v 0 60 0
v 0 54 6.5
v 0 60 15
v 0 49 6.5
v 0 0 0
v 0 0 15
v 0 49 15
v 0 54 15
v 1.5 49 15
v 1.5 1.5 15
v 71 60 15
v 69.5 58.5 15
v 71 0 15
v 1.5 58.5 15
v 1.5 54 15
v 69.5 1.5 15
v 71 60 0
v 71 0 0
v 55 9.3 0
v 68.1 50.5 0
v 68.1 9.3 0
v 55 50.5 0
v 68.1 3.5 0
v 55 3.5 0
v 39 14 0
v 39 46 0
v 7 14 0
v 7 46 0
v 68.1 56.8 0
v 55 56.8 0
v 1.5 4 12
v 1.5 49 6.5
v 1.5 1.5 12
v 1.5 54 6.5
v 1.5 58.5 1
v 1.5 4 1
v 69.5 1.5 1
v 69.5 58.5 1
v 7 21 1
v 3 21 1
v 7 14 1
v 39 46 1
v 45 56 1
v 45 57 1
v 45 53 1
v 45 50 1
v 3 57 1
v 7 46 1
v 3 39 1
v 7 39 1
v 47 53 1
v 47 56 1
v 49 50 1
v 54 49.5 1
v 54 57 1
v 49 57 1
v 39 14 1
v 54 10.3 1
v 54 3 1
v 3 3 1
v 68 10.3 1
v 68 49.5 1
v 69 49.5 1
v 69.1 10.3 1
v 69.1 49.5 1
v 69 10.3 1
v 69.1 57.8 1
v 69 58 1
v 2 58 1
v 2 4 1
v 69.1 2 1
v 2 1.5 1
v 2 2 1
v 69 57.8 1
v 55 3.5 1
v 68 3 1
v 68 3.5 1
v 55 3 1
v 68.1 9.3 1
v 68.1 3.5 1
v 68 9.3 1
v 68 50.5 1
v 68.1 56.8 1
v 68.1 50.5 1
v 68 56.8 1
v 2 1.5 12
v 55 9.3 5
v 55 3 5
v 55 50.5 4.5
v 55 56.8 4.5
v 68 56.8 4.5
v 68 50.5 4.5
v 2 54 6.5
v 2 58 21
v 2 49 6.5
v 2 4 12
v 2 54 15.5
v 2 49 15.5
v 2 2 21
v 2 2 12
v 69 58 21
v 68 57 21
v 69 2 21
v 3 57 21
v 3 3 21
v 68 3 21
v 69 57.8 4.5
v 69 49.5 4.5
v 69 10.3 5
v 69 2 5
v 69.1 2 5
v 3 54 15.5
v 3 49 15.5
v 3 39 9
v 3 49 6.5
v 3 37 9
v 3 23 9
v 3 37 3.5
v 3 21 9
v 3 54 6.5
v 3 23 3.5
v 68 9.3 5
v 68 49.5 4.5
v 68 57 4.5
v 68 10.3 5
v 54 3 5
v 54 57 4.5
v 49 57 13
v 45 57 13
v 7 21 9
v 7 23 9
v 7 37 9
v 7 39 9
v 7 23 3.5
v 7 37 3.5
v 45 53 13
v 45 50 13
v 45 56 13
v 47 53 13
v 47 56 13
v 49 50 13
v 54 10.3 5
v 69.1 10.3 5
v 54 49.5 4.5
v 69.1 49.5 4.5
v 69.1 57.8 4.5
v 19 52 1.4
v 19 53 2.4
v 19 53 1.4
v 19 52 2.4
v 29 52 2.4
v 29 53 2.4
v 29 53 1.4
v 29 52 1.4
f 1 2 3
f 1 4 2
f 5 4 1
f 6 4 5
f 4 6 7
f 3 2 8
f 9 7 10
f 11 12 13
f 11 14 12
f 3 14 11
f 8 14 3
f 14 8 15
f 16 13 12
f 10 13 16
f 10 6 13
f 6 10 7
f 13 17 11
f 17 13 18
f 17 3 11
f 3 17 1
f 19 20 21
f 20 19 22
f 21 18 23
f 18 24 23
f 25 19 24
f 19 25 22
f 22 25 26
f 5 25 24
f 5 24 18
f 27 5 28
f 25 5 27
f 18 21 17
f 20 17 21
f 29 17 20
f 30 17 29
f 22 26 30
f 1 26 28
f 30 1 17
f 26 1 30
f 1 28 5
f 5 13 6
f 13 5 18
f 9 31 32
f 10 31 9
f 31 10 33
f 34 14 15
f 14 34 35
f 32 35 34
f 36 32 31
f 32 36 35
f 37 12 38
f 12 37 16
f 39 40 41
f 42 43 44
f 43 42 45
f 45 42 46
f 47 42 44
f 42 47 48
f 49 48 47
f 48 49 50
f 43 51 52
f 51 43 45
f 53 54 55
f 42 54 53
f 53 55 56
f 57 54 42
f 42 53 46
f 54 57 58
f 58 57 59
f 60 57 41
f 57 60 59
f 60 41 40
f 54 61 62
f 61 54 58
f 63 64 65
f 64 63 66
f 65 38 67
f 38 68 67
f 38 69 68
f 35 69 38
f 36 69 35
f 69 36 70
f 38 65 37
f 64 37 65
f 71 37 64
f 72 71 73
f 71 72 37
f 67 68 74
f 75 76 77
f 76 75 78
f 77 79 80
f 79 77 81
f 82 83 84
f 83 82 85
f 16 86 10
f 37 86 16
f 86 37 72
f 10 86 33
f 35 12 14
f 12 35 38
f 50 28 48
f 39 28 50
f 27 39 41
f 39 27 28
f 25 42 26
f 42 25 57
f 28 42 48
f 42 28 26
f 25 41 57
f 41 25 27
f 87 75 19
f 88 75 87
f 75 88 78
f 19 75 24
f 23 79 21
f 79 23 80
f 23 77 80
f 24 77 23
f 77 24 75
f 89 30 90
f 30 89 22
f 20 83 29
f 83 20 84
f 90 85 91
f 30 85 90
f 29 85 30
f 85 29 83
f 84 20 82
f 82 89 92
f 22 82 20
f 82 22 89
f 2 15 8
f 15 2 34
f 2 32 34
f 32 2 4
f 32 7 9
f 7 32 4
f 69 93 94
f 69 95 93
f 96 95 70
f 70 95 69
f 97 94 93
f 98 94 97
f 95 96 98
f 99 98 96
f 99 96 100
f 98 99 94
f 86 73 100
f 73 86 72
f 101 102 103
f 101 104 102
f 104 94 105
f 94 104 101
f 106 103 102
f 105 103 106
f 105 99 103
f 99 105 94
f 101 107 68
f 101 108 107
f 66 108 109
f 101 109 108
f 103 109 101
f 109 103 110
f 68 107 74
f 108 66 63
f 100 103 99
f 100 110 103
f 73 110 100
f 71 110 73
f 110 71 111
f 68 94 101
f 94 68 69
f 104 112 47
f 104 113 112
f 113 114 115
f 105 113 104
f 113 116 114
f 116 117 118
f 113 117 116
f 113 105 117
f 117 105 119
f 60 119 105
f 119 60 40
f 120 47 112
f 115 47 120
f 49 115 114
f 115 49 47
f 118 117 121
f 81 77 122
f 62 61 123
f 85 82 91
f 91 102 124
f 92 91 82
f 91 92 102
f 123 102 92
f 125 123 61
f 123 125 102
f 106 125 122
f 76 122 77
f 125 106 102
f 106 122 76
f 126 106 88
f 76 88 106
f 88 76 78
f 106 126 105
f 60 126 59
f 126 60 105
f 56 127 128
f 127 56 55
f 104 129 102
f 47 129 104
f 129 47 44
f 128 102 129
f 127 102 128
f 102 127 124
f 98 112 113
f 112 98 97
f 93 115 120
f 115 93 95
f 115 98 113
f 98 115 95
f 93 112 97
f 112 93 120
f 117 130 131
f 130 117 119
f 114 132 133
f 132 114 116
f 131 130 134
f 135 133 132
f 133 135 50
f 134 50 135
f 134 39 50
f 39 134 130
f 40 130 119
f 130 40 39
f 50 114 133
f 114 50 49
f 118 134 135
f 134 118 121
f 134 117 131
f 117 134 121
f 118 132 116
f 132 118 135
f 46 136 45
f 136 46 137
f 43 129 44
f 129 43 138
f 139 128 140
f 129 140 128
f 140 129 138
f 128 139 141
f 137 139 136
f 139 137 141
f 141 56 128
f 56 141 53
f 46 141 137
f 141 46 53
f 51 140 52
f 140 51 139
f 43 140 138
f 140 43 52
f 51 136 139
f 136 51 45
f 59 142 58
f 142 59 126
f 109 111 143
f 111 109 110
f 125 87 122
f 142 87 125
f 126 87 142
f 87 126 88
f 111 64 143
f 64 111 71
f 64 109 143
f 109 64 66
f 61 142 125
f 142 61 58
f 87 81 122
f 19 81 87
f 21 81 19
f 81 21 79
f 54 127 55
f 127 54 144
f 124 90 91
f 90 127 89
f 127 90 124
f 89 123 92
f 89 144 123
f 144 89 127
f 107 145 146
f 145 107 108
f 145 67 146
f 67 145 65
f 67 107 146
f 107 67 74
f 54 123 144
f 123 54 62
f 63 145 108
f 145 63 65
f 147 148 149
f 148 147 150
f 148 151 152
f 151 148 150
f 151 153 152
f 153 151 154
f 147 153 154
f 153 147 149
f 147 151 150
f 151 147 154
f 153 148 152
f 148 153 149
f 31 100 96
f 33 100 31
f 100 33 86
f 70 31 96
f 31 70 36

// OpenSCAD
/*
 * @copyright Copyright (C) 2016 Leiden Tech. All rights reserved.
 * @license http://www.gnu.org/licenses/gpl-3.0.txt GNU General Public License v3
 * 
 */
//naked switches boloblinky

$wall=1;
$height=15;
$length=71;
$width=60;
$totalheight=20;
$screen=32;

difference (){
 translate([0,0,0])  
 cube ([$length, $width, $height]);

 //cutout
 translate([$wall*1.5,$wall*1.5,$wall]) 
 cube ([$length-$wall*3, $width-$wall*3, $totalheight]);

 //screen
 translate([5+$wall*2,($width-$screen)/2,0])
 cube ([$screen, $screen, $wall]); 

 //button top cutout
 translate([$length-$wall*2-14,$wall*2+1.5,0])  
 cube ([13.1, 6.3, $wall]);
 translate([$length-$wall*2-14,$width-$wall*2-7.5,0])  
 cube ([13.1, 6.3, $wall]);
 //usb hole
 translate([$wall-2,$width-11,5.5+$wall])  
 cube ([5, 5, 9]);
}

difference()
{ //totalheight box
 translate([$wall*2,$wall*2,$wall])  
 cube ([$length-$wall*3-1, $width-$wall*3-1, $totalheight]);
 //inner cutout
 translate([$wall*3,$wall*3,$wall])  
 cube ([$length-$wall*4-2, $width-$wall*4-2, $totalheight]);

 //usb hole
 translate([$wall-2,$width-11,5.5+$wall])  
 cube ([5, 5, 9]); 
}
//nano align
translate([$wall+18,$width-8,$wall+.4])  
cube ([10, 1, 1]);

//max7219 pillow
difference()
{
 translate([$wall*2,$width/2-9,$wall])  
 cube ([5, 18, 8]);
 translate([$wall*2,$width/2-7,3.5])  
 cube ([5, 14, 8]);
}
 
//nano end wall
difference() {
 translate([$wall*2+43,$width-10,$wall])  
 cube ([4, 7, 12]);
 translate([$wall*2+43,$width-7,$wall])  
 cube ([2, 3, 12]);
}

//button housing
difference()
{
  translate([$length-$wall*3-14,$wall+1,0])  
  cube ([14.1+$wall, 6.3+$wall*2, 6-$wall]);
  translate([$length-$wall*2-14,$wall*2+1,0])  
  cube ([13.1, 6.3, 8]);
}
difference()
{
 translate([$length-$wall*3-14,$width-$wall*3-7.5,0]) 
 cube ([14.1+$wall, 6.3+$wall*2, 5.5-$wall]);
 translate([$length-$wall*2-14,$width-$wall*2-7.5,0]) 
 cube ([13.1, 6.3, 8]);
}
